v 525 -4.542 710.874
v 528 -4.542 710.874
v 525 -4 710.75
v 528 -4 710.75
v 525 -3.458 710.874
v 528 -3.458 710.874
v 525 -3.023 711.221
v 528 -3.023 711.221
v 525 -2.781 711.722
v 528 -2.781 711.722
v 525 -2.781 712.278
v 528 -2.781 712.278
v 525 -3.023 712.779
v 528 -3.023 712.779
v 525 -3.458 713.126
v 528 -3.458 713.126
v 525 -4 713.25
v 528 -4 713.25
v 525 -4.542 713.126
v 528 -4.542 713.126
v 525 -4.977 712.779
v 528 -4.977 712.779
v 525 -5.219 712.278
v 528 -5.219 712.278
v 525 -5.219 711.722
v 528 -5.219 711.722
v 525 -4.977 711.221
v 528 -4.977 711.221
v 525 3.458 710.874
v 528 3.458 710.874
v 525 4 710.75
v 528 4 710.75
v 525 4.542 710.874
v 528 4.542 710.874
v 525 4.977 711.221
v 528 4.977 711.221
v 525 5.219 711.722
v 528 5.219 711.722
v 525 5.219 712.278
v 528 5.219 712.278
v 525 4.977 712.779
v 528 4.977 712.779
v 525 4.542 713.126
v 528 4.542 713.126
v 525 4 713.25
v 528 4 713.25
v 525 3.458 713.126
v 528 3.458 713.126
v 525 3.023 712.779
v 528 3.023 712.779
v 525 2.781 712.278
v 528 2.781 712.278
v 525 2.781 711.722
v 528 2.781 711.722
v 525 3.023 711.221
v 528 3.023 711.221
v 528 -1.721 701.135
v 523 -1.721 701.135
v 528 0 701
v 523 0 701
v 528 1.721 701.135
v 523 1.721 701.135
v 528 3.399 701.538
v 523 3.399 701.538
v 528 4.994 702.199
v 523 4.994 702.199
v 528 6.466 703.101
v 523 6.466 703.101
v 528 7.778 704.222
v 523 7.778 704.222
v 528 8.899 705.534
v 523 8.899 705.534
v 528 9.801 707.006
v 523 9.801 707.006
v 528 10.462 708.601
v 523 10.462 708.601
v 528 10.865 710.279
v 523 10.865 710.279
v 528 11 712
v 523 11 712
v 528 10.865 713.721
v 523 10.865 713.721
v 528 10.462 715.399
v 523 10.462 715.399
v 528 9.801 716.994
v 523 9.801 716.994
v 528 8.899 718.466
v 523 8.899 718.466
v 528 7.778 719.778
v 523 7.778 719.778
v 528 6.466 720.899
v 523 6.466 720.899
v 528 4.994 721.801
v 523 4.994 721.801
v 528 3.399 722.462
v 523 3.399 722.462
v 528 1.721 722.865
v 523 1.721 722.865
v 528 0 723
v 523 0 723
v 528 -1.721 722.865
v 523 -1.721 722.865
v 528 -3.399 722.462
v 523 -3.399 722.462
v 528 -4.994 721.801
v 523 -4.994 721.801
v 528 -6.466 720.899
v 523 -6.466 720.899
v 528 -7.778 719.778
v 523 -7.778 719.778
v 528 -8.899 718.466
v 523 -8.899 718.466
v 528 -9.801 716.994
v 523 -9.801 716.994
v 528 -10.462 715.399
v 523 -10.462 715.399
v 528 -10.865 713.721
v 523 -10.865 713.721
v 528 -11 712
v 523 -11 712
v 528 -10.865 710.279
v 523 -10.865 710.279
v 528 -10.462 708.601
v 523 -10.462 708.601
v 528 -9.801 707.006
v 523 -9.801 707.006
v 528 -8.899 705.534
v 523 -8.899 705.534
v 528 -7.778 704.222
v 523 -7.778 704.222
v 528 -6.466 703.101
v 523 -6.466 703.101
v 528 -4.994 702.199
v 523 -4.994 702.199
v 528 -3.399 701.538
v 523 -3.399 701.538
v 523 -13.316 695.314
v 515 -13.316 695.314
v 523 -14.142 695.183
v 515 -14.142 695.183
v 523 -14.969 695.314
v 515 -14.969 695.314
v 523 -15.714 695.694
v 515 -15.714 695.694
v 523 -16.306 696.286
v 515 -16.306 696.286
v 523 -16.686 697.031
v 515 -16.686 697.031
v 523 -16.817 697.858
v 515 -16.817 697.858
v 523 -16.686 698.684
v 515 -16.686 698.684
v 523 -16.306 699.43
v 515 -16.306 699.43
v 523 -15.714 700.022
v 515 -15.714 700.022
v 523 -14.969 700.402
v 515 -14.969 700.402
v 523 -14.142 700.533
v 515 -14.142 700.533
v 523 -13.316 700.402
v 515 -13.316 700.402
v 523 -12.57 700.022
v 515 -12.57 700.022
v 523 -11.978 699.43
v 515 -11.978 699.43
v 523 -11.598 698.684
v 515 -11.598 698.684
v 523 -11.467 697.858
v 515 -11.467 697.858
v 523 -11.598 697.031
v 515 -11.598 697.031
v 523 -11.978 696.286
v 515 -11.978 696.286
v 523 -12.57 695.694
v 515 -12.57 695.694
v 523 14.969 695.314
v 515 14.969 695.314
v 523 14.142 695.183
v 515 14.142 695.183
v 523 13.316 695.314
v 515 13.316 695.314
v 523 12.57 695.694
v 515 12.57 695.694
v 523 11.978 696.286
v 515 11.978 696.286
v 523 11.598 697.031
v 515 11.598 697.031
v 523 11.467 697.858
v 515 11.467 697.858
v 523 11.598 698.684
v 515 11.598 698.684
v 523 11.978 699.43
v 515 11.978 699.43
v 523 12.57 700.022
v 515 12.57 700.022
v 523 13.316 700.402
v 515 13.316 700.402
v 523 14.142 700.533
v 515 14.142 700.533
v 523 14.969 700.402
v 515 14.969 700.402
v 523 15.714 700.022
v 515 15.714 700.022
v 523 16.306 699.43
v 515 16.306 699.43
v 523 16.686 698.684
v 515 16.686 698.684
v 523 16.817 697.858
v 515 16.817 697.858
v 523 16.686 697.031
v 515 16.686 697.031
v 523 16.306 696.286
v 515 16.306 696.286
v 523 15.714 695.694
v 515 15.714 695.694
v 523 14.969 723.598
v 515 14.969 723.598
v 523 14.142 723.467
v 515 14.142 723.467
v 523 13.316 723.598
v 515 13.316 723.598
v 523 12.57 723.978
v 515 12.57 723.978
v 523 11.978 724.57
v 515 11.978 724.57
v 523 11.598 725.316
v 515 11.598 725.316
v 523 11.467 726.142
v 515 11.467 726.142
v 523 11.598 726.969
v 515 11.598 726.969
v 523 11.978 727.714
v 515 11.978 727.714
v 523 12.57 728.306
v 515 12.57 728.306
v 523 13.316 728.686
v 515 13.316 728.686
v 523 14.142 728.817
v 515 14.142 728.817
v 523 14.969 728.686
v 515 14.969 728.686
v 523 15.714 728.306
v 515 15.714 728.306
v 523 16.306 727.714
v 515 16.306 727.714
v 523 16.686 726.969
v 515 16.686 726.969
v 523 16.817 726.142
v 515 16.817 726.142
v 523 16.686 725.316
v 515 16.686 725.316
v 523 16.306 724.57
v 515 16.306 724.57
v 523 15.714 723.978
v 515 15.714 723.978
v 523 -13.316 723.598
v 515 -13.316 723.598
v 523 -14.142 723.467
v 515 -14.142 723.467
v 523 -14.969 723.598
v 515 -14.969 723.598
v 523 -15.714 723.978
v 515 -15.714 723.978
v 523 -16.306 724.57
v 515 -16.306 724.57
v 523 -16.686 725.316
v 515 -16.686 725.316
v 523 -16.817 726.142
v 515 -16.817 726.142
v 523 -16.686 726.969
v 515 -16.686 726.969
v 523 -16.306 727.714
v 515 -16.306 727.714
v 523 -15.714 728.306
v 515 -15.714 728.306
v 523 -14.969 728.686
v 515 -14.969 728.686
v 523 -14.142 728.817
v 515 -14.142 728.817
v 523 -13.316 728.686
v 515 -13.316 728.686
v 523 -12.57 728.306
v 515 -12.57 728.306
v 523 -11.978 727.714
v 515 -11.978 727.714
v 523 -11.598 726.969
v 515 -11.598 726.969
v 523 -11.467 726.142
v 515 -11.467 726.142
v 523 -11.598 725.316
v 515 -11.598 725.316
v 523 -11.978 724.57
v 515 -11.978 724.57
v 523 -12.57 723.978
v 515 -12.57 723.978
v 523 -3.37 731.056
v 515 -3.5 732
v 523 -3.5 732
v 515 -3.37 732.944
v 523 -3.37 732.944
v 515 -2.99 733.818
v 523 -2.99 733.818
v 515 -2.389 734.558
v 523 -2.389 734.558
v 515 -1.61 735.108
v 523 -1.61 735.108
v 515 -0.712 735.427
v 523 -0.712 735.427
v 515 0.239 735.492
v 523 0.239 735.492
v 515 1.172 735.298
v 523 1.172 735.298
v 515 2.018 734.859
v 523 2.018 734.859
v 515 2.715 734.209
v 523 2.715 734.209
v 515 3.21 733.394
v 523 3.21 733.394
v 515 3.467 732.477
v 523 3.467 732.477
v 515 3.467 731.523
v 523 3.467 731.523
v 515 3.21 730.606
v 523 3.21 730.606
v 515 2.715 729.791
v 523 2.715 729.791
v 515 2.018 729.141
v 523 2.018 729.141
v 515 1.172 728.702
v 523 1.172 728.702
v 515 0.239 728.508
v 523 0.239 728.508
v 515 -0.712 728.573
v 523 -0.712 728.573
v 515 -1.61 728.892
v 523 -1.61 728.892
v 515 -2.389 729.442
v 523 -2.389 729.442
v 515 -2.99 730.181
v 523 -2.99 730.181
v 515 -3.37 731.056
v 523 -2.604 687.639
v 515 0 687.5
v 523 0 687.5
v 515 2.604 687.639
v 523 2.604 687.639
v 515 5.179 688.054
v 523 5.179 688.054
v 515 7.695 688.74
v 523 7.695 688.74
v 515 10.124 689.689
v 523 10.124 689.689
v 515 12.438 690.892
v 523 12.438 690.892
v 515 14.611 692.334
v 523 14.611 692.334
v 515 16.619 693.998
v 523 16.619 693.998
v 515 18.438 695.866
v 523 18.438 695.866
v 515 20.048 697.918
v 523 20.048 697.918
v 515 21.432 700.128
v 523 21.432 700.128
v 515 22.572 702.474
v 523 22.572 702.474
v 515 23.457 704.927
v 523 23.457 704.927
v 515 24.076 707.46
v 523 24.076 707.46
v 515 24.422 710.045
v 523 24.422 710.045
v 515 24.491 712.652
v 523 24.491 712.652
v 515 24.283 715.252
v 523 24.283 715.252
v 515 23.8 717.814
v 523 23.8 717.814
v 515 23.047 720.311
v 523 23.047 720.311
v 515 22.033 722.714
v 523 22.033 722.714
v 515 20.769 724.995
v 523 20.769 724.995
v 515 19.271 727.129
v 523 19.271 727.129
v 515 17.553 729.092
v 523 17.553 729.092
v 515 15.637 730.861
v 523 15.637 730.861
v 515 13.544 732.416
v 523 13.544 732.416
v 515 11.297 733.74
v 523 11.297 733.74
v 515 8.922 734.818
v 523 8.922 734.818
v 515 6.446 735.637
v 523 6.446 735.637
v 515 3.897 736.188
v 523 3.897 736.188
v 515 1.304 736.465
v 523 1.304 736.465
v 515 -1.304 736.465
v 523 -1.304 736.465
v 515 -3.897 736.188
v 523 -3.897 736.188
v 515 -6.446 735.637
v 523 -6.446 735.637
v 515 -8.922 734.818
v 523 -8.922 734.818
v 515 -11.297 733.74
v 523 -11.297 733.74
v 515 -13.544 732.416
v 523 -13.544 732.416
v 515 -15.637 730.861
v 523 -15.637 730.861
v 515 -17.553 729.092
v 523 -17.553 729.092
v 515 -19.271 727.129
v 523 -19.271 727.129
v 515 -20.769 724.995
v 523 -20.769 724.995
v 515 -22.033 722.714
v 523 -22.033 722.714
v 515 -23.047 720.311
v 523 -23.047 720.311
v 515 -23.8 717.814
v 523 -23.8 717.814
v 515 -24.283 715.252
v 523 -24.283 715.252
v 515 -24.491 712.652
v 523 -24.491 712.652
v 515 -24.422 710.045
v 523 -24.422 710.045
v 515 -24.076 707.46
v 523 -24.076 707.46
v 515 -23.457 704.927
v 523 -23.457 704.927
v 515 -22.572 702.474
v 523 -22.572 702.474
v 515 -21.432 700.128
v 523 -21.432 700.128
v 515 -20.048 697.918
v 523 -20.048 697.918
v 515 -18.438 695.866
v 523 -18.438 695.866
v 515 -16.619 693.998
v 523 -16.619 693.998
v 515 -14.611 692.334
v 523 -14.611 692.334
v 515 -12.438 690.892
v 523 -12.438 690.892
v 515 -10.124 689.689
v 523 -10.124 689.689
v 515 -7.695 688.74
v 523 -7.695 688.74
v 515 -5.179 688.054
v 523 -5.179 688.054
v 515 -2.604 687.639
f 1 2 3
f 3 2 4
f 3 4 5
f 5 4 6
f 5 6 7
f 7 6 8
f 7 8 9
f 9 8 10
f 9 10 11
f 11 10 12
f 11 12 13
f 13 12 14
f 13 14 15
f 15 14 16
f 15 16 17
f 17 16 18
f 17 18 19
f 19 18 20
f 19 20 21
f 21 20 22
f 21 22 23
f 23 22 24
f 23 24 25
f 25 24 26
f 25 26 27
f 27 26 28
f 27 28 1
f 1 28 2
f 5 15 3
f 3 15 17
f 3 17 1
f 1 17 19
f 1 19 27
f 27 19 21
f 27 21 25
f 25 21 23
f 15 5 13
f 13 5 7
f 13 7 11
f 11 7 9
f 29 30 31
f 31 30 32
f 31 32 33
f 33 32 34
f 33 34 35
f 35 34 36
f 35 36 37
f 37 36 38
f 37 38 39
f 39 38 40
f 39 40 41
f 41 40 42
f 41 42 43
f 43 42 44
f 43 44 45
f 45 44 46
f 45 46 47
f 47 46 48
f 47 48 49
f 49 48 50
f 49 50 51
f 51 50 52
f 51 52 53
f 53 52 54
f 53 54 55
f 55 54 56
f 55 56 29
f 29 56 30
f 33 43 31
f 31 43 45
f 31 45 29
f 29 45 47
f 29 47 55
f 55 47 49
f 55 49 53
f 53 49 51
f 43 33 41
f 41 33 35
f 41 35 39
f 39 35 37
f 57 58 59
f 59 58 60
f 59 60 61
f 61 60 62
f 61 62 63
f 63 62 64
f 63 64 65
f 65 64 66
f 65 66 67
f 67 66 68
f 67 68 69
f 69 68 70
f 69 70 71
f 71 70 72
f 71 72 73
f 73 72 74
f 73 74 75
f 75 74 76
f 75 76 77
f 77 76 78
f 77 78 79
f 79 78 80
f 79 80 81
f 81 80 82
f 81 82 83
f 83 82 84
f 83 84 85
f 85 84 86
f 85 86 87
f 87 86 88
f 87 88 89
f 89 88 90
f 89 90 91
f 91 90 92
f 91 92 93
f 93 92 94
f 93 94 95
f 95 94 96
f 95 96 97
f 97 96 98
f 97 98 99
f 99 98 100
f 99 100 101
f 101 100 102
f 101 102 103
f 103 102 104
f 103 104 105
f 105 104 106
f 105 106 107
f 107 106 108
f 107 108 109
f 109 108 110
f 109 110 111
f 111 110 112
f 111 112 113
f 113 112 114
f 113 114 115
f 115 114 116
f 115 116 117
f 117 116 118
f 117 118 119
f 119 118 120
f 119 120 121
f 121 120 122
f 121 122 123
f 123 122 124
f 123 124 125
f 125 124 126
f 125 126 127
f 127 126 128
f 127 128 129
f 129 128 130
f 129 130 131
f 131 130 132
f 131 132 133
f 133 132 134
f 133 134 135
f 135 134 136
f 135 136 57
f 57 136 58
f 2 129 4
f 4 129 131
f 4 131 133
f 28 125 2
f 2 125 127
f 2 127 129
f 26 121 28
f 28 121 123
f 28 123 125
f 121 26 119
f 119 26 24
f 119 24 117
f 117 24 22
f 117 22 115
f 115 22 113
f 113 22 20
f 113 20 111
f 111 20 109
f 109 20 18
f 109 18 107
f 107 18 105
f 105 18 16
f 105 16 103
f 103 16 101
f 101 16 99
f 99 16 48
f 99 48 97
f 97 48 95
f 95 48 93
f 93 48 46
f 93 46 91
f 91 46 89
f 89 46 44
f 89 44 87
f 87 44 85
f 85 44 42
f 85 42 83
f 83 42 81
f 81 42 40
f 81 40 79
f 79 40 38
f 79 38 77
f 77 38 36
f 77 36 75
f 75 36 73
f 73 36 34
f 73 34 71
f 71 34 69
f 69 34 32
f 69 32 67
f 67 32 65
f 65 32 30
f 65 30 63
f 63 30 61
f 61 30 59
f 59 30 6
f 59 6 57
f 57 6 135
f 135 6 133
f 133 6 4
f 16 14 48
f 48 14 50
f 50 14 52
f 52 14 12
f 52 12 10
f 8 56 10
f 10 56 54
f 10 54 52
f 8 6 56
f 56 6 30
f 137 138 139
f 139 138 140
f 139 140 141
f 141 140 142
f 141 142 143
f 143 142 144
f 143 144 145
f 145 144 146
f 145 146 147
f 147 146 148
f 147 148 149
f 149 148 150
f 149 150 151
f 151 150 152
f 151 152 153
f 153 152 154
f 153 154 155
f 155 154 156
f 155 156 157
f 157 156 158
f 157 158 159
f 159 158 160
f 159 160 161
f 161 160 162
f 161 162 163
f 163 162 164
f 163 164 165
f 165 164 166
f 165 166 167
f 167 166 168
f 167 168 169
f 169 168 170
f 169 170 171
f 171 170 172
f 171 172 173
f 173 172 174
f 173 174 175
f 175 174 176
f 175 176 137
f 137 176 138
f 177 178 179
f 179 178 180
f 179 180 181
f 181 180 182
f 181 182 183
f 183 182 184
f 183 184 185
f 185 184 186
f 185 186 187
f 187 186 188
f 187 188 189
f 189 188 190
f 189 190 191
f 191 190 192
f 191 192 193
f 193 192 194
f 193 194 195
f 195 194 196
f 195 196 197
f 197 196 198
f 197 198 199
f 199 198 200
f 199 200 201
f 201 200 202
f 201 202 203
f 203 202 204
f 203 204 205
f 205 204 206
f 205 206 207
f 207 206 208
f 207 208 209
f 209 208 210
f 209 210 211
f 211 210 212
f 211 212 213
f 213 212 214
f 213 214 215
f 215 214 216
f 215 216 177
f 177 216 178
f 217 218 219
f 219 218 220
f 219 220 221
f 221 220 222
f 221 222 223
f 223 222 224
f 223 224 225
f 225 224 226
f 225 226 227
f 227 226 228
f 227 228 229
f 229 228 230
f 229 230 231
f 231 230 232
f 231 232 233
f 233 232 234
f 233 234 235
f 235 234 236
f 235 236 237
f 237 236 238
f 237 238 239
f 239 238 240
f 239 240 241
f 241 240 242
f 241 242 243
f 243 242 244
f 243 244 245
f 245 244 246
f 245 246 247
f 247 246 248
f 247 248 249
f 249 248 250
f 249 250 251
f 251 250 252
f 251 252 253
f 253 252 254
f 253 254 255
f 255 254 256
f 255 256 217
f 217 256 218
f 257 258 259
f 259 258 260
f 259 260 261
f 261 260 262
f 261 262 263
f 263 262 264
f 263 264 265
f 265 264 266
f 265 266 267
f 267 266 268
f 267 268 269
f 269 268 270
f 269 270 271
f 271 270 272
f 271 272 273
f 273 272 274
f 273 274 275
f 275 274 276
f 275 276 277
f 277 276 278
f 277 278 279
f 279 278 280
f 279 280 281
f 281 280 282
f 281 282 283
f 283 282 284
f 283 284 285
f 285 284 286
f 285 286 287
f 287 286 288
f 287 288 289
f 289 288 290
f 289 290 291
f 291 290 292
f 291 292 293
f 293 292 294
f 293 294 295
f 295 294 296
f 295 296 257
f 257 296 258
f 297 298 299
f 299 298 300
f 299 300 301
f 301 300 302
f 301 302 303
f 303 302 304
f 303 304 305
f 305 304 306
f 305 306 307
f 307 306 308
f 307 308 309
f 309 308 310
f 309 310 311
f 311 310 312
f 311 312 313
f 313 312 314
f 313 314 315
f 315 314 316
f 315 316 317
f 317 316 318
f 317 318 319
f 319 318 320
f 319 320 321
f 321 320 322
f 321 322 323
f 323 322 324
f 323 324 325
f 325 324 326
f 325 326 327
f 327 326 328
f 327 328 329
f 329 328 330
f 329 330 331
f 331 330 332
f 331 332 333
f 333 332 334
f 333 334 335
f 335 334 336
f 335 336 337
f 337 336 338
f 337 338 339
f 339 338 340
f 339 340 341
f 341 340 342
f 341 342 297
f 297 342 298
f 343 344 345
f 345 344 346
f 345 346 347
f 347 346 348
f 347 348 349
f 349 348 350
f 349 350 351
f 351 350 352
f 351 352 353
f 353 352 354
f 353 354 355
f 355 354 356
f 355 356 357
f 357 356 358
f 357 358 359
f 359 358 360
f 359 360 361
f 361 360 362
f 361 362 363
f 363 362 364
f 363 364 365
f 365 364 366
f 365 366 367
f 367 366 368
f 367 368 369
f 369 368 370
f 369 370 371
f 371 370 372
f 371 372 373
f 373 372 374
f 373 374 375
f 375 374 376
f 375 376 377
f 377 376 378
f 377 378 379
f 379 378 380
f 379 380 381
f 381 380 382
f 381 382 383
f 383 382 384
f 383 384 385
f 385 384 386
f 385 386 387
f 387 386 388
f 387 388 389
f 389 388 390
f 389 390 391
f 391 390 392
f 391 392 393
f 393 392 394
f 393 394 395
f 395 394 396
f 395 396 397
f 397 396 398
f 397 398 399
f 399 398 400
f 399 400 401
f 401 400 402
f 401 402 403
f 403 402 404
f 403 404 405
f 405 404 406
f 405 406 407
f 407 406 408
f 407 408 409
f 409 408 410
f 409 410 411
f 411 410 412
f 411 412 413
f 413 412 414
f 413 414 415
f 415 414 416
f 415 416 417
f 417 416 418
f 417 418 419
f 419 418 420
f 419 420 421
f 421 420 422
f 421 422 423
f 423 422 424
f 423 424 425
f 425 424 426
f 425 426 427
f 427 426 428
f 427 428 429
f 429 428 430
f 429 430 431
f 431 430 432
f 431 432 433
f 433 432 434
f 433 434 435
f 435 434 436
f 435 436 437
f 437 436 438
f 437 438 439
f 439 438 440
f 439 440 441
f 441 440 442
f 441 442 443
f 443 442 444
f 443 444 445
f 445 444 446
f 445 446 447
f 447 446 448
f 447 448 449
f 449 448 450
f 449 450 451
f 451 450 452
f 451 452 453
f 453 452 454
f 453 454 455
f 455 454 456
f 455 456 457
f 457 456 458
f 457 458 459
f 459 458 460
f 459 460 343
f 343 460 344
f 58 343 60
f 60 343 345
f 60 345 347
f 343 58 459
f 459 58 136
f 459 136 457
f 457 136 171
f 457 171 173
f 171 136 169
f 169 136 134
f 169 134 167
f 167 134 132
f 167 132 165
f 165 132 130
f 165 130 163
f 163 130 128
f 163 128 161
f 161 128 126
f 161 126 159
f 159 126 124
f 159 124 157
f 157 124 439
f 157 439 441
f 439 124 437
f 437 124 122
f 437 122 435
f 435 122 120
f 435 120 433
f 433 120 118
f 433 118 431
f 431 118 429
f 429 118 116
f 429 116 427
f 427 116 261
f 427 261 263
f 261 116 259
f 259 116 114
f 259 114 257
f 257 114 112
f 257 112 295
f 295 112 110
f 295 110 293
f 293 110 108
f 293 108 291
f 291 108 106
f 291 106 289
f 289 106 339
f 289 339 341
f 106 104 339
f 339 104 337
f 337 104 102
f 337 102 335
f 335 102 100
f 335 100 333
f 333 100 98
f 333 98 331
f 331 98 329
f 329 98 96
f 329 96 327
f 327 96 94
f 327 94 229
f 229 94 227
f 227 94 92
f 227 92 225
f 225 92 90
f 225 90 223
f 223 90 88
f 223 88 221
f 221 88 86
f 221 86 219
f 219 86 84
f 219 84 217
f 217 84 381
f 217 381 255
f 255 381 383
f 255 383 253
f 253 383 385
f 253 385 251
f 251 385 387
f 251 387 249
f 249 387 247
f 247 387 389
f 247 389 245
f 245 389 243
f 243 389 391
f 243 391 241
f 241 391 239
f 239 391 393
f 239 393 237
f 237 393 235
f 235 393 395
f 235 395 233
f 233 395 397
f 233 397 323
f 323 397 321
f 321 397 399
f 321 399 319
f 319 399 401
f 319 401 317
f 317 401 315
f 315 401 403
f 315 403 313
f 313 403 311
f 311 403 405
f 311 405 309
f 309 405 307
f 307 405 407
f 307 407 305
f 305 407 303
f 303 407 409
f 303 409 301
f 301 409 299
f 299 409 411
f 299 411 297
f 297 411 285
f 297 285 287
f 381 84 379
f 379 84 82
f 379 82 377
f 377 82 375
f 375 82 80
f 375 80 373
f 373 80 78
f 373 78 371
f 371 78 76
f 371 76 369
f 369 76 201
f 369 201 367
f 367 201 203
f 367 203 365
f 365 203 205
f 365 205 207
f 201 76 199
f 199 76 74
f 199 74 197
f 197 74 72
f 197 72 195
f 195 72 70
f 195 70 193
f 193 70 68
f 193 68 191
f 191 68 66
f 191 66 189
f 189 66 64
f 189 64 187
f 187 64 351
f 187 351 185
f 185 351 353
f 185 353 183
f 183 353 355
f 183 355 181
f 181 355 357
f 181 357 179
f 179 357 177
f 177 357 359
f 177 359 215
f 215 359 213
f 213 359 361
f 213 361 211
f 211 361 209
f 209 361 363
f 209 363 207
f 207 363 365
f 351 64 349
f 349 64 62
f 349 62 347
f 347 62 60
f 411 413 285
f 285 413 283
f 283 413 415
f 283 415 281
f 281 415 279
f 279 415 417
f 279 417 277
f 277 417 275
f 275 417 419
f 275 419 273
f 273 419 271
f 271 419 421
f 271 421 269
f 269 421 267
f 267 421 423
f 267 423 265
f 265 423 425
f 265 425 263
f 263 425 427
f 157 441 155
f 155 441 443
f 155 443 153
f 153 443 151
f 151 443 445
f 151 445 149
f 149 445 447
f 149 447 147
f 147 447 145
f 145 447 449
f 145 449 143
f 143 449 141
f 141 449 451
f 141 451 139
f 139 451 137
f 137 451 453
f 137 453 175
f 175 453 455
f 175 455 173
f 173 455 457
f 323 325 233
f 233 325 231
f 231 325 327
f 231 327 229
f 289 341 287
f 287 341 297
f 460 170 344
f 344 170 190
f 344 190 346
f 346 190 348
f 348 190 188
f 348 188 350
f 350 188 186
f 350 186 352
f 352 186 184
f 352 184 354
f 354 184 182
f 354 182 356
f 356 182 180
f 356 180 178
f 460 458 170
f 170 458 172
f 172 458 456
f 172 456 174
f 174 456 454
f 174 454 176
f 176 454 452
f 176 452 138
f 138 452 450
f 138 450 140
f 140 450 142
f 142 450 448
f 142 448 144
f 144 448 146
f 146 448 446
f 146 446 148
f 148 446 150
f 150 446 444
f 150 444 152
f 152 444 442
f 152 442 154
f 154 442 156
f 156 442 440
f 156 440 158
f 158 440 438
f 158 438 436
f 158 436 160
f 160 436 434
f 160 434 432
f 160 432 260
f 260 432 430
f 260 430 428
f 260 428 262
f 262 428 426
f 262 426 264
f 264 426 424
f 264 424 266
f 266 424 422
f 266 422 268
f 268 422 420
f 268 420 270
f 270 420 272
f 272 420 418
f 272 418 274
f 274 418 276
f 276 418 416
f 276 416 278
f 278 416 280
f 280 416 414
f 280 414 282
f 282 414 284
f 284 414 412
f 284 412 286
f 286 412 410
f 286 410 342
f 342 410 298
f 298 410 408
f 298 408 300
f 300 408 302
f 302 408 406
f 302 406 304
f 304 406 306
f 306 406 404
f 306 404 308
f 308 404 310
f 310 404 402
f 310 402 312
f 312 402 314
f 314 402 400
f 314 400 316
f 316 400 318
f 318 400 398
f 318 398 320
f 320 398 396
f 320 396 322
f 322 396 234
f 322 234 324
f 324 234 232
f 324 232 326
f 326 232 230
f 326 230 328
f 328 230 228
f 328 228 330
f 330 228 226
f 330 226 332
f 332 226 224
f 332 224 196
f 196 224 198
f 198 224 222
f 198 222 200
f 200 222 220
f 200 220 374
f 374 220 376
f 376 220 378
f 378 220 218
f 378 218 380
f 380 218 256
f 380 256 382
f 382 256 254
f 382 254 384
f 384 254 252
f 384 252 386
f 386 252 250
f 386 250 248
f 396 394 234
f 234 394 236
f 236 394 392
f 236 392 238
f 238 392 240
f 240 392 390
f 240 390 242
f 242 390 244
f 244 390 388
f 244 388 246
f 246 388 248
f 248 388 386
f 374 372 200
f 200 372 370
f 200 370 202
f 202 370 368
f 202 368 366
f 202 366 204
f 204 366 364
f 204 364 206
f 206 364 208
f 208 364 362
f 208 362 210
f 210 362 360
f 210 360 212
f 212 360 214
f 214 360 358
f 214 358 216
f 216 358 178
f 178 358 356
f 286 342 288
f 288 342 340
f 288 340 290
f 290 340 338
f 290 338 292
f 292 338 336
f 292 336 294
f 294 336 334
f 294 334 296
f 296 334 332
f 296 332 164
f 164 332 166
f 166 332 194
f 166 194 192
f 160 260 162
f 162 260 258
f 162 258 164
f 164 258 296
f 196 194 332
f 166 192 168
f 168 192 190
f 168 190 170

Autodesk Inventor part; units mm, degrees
ref_plane "YZ Plane" through (0, 0, 0) normal (1, 0, 0) x (0, 1, 0)
ref_plane "XZ Plane" through (0, 0, 0) normal (0, 1, 0) x (-1, 0, 0)
ref_plane "Work Plane1" through (515, 0, 712) normal (1, 0, 0) x (0, 0, -1)
sketch "Sketch1" plane through (515, 0, 712) normal (1, 0, 0) x (0, 0, -1)
  circle A0 centre (0, 0) radius 24.5 projected
  circle A1 centre (0, 0) radius 13.5 projected
  circle A2 centre (14.1421, -14.1421) radius 2.675 projected
  circle A3 centre (14.1421, 14.1421) radius 2.675 projected
  circle A4 centre (-14.1421, 14.1421) radius 2.675 projected
  circle A5 centre (-14.1421, -14.1421) radius 2.675 projected
  arc A6 (-20, 3.5) -> (-20, -3.5) centre (-20, 0) ccw projected
  arc A7 (-20, -3.5) -> (-20, 3.5) centre (-20, 0) ccw projected
  point P0 (712, 0)
extrude "Extrusion1" add sketch "Sketch1" along normal blind 8 contours A0 | A1
sketch "Sketch2" plane through (523, 0, 712) normal (1, 0, 0) x (0, 0, -1)
  circle A0 centre (0, 0) radius 11
  point P0 (712, 0)
  dimension "d2" = 22
extrude "Extrusion2" add sketch "Sketch2" along normal blind 5
sketch "Sketch3" plane through (528, 0, 712) normal (1, 0, 0) x (0, 0, -1)
  circle A0 centre (0, -4.0001) radius 1.25
  circle A1 centre (0, 3.9999) radius 1.25
  circle A2 centre (0, 0) radius 11 projected
  point P0 (712, 0)
  dimension "d14" = 8
  dimension "d15" = 22
extrude "Extrusion3" cut sketch "Sketch3" against normal blind 3 contours A0 | A1
properties part number "Herramienta Marcador Base"
